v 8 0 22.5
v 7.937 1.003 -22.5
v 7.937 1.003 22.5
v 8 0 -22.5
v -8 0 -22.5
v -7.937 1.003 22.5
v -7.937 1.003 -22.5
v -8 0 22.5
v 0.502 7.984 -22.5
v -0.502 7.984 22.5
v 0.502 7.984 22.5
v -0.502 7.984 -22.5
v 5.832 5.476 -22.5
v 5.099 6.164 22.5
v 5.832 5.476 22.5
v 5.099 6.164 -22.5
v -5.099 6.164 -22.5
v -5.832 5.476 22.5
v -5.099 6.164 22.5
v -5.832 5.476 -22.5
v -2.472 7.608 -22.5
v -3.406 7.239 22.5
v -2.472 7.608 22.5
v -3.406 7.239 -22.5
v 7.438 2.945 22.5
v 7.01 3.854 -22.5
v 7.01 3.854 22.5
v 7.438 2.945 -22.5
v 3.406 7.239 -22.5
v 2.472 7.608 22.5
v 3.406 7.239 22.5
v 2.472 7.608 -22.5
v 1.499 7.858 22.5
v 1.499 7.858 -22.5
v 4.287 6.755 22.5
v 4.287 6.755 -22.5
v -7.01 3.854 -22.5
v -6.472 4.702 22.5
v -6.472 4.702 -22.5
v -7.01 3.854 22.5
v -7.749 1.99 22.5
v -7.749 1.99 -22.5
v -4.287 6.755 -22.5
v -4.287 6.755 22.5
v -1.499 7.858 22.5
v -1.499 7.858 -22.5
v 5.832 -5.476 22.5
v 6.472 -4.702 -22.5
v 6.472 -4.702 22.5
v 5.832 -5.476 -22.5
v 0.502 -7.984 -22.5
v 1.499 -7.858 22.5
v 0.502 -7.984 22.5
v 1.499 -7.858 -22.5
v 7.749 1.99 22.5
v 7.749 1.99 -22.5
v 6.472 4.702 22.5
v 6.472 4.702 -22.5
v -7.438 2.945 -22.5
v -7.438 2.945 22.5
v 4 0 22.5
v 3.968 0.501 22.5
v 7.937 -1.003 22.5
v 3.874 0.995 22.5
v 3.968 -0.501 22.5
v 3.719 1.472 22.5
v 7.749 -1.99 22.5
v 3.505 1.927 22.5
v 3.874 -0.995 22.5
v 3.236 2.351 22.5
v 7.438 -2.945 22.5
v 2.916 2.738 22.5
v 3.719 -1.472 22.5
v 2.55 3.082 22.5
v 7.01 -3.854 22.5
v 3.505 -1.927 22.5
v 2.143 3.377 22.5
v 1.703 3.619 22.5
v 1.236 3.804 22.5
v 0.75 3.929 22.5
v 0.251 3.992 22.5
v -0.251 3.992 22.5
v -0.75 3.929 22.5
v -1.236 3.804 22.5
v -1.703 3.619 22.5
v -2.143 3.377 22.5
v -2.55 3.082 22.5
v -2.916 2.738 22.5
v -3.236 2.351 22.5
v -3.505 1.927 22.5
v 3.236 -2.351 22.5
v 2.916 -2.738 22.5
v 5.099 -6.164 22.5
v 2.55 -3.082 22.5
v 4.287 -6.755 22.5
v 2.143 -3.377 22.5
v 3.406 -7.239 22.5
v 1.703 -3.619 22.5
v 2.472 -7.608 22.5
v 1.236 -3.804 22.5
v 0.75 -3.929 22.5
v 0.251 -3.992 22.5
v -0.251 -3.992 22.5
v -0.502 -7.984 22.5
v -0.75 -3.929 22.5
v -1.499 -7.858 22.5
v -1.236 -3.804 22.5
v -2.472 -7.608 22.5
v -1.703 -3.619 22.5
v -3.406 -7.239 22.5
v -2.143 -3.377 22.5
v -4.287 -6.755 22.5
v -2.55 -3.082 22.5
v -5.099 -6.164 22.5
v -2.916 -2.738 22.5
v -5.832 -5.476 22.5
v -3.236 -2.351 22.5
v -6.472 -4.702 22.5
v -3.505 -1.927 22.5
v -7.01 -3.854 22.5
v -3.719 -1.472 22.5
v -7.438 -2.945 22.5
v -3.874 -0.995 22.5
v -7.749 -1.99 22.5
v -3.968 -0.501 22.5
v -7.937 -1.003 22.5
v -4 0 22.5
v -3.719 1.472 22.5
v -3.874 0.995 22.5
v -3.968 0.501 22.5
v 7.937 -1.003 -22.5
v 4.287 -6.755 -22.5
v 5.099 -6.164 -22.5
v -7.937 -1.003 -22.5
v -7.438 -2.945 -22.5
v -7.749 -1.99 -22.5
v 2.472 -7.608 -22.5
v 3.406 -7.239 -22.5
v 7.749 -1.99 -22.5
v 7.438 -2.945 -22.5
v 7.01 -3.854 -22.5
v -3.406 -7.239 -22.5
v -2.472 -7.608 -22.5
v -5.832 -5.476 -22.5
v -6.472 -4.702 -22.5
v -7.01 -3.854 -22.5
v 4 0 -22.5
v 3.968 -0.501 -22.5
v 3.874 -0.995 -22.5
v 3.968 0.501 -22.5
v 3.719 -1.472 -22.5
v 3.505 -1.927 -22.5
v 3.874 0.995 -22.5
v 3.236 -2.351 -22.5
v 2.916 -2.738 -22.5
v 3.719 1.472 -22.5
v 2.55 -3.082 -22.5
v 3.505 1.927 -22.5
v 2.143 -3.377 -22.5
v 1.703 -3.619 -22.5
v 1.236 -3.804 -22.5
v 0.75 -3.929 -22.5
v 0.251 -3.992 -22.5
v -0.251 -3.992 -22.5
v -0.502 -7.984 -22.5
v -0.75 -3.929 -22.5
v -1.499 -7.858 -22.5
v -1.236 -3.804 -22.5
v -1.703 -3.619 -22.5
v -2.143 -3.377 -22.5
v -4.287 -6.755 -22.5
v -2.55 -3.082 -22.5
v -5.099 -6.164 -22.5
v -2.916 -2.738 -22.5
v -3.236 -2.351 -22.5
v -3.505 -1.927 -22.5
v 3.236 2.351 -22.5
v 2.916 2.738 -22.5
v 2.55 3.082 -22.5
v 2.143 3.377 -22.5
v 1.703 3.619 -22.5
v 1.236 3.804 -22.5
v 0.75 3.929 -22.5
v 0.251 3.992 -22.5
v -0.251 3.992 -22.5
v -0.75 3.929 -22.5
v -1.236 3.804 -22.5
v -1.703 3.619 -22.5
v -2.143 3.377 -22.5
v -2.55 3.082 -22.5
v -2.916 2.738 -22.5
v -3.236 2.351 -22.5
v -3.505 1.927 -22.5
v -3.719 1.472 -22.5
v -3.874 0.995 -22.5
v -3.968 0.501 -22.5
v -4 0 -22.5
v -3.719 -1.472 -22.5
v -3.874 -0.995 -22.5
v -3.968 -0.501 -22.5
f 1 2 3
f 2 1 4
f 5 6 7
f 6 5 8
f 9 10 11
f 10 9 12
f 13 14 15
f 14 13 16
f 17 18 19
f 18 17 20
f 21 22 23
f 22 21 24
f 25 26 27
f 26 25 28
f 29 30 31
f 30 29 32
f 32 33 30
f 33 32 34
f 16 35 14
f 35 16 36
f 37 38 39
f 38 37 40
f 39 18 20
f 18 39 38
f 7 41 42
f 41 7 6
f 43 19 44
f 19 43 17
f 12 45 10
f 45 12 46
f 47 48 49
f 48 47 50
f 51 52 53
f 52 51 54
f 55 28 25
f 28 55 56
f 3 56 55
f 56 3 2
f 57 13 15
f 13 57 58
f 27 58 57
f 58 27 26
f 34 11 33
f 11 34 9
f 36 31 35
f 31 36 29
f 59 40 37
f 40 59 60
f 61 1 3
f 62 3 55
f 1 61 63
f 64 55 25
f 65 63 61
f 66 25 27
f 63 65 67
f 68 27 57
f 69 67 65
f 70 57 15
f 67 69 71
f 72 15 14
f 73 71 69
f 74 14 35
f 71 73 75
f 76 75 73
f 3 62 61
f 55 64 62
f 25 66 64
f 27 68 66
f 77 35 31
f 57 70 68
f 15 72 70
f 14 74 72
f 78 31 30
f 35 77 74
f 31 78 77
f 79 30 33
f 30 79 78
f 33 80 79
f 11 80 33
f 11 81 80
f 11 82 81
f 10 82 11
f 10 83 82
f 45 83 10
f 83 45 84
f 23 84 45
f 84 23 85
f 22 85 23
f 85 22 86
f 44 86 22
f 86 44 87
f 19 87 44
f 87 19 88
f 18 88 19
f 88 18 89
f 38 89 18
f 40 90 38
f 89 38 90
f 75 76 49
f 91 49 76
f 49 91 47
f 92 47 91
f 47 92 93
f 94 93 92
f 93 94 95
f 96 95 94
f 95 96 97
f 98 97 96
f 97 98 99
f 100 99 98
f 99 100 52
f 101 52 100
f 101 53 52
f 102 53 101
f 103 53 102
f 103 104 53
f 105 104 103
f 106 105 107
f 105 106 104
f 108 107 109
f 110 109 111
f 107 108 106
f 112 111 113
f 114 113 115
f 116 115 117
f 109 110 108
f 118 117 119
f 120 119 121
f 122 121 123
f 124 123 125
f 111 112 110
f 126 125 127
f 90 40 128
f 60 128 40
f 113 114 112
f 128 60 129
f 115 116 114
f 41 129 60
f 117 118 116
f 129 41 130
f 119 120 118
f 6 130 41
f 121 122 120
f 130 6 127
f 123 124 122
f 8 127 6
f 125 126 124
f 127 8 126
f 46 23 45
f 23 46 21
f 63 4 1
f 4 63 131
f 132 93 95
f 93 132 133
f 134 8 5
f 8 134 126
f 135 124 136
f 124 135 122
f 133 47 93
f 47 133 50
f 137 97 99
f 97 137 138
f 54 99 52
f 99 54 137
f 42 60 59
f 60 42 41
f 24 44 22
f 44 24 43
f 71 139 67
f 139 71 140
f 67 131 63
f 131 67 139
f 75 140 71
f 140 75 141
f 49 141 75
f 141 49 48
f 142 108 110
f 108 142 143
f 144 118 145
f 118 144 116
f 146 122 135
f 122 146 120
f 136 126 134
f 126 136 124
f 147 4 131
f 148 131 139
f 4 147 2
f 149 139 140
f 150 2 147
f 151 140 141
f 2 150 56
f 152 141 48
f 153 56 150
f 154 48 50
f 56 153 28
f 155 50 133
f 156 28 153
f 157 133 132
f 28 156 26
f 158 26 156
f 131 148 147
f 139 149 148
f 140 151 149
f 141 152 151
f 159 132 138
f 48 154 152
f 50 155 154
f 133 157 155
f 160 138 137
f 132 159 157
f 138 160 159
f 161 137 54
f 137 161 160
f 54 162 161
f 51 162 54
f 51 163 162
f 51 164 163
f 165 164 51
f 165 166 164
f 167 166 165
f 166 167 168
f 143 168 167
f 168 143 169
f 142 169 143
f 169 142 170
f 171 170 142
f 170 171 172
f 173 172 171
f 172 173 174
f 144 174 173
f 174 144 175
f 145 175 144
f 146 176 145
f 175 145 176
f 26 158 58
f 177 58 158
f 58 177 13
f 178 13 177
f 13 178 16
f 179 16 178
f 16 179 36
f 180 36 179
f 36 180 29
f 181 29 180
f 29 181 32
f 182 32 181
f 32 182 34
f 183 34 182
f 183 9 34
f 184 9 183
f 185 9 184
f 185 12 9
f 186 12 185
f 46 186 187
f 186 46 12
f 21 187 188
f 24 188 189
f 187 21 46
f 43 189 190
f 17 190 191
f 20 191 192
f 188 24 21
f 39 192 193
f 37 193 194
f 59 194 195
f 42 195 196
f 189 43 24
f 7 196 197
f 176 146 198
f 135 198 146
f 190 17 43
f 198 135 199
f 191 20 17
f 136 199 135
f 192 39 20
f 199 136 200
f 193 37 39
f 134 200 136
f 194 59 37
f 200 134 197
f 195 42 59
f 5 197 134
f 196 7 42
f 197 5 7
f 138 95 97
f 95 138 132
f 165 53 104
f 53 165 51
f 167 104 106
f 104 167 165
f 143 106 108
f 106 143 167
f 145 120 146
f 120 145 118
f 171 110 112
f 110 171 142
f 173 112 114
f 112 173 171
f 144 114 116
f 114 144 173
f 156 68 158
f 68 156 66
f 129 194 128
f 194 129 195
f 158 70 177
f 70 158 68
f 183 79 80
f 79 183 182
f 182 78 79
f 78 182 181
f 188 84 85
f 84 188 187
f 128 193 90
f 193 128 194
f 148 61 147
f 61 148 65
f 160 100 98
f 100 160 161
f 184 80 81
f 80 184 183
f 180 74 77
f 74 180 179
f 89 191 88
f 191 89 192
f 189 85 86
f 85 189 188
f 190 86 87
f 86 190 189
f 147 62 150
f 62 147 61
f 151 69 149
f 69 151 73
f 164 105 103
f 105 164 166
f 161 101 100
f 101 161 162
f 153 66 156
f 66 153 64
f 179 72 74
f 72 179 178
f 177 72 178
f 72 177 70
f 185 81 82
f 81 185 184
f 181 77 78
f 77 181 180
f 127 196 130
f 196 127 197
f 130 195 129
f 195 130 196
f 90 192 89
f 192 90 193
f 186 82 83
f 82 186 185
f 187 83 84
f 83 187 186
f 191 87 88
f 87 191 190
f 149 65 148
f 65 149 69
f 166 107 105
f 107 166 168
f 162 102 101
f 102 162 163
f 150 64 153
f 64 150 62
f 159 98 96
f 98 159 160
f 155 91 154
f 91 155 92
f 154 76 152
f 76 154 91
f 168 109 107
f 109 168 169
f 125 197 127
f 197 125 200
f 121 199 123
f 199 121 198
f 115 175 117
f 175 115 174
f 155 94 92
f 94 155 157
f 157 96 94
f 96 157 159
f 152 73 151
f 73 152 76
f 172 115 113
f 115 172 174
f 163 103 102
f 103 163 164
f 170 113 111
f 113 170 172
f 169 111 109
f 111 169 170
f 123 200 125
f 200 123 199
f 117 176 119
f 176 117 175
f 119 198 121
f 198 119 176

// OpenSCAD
$fn = 50;


difference() {
	union() {
		translate(v = [0, 0, -22.5000000000]) {
			cylinder(h = 45, r = 8.0000000000);
		}
	}
	union() {
		translate(v = [0, 0, -100.0000000000]) {
			cylinder(h = 200, r = 4.0000000000);
		}
	}
}
